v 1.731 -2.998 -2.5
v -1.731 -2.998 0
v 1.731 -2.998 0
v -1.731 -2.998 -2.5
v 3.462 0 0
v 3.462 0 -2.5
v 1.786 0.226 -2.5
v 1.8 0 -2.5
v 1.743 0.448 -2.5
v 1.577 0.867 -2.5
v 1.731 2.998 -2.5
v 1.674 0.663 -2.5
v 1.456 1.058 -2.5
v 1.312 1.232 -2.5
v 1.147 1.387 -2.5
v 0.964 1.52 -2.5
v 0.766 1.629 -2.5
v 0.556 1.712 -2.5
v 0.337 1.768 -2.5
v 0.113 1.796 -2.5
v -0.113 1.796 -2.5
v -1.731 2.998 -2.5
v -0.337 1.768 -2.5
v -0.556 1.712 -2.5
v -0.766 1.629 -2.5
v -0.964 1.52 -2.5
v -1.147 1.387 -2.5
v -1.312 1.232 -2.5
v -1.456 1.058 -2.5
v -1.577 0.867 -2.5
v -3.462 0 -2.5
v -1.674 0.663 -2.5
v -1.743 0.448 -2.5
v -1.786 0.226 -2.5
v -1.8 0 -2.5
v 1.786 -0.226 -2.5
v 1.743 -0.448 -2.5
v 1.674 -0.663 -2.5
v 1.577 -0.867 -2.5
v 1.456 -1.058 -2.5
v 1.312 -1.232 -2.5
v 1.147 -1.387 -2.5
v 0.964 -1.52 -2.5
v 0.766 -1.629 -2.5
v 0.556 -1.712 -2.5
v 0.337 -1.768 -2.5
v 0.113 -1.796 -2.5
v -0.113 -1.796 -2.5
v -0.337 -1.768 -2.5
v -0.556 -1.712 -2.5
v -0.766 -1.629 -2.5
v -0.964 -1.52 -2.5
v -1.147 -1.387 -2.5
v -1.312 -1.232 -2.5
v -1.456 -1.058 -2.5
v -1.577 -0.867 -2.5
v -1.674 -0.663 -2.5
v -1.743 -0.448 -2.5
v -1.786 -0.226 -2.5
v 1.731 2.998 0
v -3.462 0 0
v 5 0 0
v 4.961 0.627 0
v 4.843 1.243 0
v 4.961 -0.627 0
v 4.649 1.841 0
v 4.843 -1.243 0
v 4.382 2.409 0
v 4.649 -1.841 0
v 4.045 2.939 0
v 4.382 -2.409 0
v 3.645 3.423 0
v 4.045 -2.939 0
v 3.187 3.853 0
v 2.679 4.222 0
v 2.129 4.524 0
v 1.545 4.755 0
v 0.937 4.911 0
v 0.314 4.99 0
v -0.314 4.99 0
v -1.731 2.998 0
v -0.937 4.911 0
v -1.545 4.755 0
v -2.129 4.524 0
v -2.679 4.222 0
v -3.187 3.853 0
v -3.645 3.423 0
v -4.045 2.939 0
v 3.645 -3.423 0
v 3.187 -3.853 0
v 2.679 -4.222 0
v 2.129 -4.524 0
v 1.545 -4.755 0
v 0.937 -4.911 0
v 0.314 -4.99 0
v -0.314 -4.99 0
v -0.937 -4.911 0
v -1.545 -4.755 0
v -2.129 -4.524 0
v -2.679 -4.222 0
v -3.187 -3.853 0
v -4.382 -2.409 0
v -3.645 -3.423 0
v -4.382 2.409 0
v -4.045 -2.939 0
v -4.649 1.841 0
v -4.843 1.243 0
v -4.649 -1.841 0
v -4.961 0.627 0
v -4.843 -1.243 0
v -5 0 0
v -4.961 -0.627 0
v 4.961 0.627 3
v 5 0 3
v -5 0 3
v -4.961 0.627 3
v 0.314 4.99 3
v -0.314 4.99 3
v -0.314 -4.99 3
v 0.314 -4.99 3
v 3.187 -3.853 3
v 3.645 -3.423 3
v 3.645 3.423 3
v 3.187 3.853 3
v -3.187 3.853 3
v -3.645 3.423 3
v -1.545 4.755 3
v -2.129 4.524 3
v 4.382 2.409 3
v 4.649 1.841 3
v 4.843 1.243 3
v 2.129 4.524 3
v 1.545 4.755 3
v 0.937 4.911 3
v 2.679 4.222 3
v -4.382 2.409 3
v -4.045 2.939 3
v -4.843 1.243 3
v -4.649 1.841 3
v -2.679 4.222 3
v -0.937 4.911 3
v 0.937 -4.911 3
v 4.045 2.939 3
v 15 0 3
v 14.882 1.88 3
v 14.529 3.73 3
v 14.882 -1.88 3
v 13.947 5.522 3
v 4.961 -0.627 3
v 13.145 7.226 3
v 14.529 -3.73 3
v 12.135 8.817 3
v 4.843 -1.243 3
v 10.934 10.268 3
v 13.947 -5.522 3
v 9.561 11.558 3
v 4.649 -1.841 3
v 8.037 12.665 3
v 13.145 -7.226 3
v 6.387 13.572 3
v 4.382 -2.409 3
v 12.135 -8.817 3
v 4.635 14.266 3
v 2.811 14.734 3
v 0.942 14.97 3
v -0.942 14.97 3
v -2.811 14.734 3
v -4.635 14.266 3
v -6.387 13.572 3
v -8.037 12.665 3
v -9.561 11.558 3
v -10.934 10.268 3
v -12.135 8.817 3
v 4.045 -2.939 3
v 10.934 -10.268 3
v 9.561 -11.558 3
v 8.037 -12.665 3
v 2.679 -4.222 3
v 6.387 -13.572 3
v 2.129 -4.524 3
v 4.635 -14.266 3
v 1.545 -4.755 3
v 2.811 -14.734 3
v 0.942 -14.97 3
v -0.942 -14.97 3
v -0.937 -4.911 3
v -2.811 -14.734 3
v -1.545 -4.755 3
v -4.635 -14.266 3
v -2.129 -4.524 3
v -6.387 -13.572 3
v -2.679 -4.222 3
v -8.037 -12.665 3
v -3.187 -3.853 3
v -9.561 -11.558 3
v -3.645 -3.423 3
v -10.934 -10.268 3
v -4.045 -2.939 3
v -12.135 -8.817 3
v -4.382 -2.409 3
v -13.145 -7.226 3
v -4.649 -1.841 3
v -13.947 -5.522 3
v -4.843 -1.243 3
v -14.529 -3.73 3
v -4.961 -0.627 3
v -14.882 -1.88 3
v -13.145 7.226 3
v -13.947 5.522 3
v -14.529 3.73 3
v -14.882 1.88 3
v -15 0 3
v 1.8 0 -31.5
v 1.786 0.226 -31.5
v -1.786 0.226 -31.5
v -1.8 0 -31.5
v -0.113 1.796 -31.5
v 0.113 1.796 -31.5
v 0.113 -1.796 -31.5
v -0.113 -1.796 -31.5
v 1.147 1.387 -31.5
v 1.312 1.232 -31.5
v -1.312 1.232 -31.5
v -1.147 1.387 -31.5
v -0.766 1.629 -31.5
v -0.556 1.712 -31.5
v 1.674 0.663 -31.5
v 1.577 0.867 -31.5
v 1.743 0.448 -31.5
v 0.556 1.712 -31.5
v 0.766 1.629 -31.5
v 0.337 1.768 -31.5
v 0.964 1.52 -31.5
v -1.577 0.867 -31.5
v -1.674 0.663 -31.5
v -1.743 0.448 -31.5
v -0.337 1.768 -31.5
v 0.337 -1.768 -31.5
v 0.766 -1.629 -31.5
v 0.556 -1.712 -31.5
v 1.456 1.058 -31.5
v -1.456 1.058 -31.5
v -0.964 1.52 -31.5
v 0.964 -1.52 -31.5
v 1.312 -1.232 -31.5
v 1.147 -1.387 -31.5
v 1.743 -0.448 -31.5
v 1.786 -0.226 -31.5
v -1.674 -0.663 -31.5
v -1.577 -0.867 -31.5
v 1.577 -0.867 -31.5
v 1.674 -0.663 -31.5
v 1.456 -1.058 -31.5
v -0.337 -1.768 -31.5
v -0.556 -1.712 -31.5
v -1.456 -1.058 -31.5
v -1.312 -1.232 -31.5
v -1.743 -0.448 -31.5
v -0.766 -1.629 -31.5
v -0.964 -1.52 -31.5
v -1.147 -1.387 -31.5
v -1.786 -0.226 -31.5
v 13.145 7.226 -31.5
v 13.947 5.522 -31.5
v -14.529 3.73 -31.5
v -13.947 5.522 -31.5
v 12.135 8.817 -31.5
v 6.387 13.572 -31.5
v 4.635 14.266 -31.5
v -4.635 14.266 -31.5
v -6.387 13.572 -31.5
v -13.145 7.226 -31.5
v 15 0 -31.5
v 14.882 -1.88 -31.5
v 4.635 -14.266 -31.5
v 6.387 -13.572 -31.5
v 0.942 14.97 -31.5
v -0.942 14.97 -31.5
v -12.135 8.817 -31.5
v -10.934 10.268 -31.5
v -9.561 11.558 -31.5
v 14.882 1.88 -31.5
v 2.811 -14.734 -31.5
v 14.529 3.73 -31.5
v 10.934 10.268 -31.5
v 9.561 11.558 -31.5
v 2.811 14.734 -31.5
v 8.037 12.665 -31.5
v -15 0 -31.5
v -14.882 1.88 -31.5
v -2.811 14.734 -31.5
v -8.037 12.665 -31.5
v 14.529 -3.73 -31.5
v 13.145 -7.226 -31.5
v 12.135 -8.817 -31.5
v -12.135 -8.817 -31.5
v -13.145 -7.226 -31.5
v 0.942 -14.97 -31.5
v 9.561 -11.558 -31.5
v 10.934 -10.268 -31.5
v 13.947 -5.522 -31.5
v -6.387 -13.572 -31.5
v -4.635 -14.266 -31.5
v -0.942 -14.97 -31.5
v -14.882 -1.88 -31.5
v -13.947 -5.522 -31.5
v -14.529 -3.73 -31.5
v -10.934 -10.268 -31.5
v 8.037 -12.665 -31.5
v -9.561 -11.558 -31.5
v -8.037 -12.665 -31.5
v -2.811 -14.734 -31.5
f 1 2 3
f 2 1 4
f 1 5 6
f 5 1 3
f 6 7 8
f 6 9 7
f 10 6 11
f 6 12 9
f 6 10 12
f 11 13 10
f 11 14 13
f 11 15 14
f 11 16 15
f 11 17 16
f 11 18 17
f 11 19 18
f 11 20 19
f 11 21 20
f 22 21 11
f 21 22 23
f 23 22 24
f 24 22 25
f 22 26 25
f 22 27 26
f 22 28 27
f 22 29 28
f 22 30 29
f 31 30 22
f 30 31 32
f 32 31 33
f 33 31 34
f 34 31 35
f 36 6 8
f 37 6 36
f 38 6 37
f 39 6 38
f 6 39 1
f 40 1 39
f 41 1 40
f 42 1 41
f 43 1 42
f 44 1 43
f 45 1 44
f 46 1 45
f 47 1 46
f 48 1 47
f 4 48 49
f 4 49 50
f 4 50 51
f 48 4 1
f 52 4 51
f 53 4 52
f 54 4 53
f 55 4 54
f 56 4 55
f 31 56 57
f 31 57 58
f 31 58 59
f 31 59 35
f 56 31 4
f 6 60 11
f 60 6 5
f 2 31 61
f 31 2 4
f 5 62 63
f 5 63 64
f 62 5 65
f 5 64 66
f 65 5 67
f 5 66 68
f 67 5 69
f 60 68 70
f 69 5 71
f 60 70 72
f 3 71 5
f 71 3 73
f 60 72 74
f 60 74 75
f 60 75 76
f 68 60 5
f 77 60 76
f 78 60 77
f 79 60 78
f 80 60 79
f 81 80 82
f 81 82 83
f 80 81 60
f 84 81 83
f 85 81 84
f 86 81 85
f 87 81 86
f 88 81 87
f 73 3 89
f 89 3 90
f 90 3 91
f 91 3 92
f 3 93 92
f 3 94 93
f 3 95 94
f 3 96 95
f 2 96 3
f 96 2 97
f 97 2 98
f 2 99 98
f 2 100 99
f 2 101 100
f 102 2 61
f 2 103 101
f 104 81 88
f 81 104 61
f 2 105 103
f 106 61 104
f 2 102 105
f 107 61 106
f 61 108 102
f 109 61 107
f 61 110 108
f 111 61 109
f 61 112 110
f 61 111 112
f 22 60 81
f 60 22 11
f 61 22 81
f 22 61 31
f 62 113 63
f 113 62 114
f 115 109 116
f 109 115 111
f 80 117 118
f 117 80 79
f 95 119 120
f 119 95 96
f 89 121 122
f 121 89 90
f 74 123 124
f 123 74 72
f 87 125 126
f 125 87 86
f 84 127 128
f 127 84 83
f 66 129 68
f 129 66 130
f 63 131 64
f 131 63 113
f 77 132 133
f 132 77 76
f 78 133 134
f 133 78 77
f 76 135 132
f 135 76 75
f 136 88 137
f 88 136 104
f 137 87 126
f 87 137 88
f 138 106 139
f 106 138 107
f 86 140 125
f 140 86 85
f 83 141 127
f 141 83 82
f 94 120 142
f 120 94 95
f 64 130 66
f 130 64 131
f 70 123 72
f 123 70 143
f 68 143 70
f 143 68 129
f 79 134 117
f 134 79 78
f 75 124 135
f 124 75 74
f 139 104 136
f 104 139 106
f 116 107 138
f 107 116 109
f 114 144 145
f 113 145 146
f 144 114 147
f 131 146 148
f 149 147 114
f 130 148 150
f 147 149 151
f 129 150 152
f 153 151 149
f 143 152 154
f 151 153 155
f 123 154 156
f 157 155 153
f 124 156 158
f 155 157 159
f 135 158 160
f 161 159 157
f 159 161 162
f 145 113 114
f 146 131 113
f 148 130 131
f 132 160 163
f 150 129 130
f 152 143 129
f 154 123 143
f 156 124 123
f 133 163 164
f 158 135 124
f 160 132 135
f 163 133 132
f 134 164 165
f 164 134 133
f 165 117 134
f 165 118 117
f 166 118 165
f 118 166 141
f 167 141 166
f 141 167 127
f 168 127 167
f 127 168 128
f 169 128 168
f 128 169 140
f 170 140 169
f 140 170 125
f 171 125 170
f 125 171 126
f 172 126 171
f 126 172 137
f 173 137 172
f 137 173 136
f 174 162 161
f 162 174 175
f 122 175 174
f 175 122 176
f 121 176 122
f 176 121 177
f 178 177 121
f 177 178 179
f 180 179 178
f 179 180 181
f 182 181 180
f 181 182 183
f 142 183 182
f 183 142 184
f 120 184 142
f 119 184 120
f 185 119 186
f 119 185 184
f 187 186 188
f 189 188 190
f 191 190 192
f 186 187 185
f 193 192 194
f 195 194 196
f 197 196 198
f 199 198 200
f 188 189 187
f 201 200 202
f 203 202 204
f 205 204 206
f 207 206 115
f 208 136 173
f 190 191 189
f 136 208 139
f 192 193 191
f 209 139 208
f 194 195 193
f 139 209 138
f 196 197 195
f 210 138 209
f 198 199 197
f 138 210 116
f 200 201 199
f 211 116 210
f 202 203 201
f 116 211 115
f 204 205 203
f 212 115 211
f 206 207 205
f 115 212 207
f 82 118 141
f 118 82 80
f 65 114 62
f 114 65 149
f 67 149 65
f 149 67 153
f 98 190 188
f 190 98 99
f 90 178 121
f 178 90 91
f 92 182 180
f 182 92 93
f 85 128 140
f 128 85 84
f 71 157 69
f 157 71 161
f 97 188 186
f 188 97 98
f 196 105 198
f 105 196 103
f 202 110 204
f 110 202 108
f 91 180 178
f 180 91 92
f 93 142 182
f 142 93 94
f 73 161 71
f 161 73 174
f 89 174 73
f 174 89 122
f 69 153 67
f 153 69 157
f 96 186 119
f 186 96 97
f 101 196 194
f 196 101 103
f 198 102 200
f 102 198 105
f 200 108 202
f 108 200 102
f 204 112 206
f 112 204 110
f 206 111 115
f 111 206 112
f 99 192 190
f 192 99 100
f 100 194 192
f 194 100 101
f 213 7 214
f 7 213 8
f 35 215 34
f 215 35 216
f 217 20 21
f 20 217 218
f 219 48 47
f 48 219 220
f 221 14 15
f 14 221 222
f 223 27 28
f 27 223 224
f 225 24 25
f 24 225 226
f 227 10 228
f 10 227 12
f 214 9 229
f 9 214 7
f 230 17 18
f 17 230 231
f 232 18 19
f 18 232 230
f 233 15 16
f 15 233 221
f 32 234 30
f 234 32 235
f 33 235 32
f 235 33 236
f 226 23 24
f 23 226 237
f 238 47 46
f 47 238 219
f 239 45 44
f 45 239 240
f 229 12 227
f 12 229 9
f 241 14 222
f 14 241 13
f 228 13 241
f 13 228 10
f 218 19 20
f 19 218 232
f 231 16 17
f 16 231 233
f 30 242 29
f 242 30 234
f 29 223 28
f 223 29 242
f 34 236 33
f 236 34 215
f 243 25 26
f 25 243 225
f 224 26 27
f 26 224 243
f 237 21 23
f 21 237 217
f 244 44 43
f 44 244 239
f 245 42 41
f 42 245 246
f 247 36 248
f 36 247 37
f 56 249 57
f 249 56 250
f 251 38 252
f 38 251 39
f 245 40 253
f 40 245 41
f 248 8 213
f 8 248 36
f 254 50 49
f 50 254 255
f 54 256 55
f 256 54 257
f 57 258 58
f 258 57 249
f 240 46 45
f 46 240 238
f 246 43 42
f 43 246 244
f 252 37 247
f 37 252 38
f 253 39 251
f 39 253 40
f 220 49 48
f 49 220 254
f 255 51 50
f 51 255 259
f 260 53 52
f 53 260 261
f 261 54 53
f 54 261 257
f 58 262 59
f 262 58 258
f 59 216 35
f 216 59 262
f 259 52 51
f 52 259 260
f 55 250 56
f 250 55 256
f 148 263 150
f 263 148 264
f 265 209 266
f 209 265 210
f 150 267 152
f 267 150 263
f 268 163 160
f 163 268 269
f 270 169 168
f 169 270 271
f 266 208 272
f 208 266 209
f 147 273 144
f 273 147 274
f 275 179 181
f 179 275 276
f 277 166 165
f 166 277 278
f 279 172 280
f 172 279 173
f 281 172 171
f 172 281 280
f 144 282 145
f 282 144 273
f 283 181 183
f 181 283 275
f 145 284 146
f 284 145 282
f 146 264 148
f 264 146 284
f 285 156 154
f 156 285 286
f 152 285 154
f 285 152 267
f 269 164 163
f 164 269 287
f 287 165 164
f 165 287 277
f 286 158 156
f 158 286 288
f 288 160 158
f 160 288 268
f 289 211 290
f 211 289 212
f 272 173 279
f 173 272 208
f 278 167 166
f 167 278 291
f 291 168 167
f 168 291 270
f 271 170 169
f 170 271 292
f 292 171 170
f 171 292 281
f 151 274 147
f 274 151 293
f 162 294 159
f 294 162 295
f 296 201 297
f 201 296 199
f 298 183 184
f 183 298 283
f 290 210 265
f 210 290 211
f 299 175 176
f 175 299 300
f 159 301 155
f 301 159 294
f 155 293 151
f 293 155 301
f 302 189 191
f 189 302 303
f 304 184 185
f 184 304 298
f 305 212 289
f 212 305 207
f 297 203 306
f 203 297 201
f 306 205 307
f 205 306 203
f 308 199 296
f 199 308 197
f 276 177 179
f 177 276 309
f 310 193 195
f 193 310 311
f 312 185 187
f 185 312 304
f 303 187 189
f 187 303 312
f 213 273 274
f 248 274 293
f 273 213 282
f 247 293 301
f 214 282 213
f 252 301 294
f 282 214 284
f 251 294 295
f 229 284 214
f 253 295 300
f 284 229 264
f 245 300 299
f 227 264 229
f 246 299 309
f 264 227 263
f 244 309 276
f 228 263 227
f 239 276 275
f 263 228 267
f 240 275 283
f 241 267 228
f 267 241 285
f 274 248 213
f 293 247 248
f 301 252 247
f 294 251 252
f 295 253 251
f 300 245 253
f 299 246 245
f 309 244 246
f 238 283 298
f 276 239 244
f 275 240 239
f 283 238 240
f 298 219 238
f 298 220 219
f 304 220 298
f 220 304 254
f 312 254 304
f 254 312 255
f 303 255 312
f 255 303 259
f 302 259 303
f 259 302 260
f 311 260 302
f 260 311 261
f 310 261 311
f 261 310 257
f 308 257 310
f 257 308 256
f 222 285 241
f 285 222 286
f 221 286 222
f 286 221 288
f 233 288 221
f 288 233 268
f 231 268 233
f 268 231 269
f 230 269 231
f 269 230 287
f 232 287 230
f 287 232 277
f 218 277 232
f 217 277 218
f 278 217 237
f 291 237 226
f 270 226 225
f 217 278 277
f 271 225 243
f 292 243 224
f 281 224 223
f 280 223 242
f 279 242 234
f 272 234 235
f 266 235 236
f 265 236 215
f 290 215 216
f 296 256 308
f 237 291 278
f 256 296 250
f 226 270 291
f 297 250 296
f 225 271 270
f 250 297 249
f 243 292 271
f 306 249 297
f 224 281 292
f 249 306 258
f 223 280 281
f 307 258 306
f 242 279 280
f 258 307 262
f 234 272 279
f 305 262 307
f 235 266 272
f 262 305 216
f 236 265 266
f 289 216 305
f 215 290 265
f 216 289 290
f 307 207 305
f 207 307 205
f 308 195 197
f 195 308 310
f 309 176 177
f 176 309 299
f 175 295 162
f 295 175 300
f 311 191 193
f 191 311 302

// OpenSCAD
$fn = 50;


difference() {
	union() {
		translate(v = [0, 0, -31.5000000000]) {
			cylinder(h = 34.5000000000, r = 15.0000000000);
		}
	}
	union() {
		translate(v = [0, 0, 0]) {
			rotate(a = [0, 0, 0]) {
				difference() {
					union() {
						translate(v = [0, 0, -2.5000000000]) {
							linear_extrude(height = 2.5000000000) {
								polygon(points = [[3.4620000000, 0.0000000000], [1.7310000000, 2.9981799479], [-1.7310000000, 2.9981799479], [-3.4620000000, 0.0000000000], [-1.7310000000, -2.9981799479], [1.7310000000, -2.9981799479]]);
							}
						}
					}
					union();
				}
			}
		}
		#cylinder(h = 3, r = 5.0000000000);
		#translate(v = [0, 0, -100.0000000000]) {
			cylinder(h = 200, r = 1.8000000000);
		}
	}
}
